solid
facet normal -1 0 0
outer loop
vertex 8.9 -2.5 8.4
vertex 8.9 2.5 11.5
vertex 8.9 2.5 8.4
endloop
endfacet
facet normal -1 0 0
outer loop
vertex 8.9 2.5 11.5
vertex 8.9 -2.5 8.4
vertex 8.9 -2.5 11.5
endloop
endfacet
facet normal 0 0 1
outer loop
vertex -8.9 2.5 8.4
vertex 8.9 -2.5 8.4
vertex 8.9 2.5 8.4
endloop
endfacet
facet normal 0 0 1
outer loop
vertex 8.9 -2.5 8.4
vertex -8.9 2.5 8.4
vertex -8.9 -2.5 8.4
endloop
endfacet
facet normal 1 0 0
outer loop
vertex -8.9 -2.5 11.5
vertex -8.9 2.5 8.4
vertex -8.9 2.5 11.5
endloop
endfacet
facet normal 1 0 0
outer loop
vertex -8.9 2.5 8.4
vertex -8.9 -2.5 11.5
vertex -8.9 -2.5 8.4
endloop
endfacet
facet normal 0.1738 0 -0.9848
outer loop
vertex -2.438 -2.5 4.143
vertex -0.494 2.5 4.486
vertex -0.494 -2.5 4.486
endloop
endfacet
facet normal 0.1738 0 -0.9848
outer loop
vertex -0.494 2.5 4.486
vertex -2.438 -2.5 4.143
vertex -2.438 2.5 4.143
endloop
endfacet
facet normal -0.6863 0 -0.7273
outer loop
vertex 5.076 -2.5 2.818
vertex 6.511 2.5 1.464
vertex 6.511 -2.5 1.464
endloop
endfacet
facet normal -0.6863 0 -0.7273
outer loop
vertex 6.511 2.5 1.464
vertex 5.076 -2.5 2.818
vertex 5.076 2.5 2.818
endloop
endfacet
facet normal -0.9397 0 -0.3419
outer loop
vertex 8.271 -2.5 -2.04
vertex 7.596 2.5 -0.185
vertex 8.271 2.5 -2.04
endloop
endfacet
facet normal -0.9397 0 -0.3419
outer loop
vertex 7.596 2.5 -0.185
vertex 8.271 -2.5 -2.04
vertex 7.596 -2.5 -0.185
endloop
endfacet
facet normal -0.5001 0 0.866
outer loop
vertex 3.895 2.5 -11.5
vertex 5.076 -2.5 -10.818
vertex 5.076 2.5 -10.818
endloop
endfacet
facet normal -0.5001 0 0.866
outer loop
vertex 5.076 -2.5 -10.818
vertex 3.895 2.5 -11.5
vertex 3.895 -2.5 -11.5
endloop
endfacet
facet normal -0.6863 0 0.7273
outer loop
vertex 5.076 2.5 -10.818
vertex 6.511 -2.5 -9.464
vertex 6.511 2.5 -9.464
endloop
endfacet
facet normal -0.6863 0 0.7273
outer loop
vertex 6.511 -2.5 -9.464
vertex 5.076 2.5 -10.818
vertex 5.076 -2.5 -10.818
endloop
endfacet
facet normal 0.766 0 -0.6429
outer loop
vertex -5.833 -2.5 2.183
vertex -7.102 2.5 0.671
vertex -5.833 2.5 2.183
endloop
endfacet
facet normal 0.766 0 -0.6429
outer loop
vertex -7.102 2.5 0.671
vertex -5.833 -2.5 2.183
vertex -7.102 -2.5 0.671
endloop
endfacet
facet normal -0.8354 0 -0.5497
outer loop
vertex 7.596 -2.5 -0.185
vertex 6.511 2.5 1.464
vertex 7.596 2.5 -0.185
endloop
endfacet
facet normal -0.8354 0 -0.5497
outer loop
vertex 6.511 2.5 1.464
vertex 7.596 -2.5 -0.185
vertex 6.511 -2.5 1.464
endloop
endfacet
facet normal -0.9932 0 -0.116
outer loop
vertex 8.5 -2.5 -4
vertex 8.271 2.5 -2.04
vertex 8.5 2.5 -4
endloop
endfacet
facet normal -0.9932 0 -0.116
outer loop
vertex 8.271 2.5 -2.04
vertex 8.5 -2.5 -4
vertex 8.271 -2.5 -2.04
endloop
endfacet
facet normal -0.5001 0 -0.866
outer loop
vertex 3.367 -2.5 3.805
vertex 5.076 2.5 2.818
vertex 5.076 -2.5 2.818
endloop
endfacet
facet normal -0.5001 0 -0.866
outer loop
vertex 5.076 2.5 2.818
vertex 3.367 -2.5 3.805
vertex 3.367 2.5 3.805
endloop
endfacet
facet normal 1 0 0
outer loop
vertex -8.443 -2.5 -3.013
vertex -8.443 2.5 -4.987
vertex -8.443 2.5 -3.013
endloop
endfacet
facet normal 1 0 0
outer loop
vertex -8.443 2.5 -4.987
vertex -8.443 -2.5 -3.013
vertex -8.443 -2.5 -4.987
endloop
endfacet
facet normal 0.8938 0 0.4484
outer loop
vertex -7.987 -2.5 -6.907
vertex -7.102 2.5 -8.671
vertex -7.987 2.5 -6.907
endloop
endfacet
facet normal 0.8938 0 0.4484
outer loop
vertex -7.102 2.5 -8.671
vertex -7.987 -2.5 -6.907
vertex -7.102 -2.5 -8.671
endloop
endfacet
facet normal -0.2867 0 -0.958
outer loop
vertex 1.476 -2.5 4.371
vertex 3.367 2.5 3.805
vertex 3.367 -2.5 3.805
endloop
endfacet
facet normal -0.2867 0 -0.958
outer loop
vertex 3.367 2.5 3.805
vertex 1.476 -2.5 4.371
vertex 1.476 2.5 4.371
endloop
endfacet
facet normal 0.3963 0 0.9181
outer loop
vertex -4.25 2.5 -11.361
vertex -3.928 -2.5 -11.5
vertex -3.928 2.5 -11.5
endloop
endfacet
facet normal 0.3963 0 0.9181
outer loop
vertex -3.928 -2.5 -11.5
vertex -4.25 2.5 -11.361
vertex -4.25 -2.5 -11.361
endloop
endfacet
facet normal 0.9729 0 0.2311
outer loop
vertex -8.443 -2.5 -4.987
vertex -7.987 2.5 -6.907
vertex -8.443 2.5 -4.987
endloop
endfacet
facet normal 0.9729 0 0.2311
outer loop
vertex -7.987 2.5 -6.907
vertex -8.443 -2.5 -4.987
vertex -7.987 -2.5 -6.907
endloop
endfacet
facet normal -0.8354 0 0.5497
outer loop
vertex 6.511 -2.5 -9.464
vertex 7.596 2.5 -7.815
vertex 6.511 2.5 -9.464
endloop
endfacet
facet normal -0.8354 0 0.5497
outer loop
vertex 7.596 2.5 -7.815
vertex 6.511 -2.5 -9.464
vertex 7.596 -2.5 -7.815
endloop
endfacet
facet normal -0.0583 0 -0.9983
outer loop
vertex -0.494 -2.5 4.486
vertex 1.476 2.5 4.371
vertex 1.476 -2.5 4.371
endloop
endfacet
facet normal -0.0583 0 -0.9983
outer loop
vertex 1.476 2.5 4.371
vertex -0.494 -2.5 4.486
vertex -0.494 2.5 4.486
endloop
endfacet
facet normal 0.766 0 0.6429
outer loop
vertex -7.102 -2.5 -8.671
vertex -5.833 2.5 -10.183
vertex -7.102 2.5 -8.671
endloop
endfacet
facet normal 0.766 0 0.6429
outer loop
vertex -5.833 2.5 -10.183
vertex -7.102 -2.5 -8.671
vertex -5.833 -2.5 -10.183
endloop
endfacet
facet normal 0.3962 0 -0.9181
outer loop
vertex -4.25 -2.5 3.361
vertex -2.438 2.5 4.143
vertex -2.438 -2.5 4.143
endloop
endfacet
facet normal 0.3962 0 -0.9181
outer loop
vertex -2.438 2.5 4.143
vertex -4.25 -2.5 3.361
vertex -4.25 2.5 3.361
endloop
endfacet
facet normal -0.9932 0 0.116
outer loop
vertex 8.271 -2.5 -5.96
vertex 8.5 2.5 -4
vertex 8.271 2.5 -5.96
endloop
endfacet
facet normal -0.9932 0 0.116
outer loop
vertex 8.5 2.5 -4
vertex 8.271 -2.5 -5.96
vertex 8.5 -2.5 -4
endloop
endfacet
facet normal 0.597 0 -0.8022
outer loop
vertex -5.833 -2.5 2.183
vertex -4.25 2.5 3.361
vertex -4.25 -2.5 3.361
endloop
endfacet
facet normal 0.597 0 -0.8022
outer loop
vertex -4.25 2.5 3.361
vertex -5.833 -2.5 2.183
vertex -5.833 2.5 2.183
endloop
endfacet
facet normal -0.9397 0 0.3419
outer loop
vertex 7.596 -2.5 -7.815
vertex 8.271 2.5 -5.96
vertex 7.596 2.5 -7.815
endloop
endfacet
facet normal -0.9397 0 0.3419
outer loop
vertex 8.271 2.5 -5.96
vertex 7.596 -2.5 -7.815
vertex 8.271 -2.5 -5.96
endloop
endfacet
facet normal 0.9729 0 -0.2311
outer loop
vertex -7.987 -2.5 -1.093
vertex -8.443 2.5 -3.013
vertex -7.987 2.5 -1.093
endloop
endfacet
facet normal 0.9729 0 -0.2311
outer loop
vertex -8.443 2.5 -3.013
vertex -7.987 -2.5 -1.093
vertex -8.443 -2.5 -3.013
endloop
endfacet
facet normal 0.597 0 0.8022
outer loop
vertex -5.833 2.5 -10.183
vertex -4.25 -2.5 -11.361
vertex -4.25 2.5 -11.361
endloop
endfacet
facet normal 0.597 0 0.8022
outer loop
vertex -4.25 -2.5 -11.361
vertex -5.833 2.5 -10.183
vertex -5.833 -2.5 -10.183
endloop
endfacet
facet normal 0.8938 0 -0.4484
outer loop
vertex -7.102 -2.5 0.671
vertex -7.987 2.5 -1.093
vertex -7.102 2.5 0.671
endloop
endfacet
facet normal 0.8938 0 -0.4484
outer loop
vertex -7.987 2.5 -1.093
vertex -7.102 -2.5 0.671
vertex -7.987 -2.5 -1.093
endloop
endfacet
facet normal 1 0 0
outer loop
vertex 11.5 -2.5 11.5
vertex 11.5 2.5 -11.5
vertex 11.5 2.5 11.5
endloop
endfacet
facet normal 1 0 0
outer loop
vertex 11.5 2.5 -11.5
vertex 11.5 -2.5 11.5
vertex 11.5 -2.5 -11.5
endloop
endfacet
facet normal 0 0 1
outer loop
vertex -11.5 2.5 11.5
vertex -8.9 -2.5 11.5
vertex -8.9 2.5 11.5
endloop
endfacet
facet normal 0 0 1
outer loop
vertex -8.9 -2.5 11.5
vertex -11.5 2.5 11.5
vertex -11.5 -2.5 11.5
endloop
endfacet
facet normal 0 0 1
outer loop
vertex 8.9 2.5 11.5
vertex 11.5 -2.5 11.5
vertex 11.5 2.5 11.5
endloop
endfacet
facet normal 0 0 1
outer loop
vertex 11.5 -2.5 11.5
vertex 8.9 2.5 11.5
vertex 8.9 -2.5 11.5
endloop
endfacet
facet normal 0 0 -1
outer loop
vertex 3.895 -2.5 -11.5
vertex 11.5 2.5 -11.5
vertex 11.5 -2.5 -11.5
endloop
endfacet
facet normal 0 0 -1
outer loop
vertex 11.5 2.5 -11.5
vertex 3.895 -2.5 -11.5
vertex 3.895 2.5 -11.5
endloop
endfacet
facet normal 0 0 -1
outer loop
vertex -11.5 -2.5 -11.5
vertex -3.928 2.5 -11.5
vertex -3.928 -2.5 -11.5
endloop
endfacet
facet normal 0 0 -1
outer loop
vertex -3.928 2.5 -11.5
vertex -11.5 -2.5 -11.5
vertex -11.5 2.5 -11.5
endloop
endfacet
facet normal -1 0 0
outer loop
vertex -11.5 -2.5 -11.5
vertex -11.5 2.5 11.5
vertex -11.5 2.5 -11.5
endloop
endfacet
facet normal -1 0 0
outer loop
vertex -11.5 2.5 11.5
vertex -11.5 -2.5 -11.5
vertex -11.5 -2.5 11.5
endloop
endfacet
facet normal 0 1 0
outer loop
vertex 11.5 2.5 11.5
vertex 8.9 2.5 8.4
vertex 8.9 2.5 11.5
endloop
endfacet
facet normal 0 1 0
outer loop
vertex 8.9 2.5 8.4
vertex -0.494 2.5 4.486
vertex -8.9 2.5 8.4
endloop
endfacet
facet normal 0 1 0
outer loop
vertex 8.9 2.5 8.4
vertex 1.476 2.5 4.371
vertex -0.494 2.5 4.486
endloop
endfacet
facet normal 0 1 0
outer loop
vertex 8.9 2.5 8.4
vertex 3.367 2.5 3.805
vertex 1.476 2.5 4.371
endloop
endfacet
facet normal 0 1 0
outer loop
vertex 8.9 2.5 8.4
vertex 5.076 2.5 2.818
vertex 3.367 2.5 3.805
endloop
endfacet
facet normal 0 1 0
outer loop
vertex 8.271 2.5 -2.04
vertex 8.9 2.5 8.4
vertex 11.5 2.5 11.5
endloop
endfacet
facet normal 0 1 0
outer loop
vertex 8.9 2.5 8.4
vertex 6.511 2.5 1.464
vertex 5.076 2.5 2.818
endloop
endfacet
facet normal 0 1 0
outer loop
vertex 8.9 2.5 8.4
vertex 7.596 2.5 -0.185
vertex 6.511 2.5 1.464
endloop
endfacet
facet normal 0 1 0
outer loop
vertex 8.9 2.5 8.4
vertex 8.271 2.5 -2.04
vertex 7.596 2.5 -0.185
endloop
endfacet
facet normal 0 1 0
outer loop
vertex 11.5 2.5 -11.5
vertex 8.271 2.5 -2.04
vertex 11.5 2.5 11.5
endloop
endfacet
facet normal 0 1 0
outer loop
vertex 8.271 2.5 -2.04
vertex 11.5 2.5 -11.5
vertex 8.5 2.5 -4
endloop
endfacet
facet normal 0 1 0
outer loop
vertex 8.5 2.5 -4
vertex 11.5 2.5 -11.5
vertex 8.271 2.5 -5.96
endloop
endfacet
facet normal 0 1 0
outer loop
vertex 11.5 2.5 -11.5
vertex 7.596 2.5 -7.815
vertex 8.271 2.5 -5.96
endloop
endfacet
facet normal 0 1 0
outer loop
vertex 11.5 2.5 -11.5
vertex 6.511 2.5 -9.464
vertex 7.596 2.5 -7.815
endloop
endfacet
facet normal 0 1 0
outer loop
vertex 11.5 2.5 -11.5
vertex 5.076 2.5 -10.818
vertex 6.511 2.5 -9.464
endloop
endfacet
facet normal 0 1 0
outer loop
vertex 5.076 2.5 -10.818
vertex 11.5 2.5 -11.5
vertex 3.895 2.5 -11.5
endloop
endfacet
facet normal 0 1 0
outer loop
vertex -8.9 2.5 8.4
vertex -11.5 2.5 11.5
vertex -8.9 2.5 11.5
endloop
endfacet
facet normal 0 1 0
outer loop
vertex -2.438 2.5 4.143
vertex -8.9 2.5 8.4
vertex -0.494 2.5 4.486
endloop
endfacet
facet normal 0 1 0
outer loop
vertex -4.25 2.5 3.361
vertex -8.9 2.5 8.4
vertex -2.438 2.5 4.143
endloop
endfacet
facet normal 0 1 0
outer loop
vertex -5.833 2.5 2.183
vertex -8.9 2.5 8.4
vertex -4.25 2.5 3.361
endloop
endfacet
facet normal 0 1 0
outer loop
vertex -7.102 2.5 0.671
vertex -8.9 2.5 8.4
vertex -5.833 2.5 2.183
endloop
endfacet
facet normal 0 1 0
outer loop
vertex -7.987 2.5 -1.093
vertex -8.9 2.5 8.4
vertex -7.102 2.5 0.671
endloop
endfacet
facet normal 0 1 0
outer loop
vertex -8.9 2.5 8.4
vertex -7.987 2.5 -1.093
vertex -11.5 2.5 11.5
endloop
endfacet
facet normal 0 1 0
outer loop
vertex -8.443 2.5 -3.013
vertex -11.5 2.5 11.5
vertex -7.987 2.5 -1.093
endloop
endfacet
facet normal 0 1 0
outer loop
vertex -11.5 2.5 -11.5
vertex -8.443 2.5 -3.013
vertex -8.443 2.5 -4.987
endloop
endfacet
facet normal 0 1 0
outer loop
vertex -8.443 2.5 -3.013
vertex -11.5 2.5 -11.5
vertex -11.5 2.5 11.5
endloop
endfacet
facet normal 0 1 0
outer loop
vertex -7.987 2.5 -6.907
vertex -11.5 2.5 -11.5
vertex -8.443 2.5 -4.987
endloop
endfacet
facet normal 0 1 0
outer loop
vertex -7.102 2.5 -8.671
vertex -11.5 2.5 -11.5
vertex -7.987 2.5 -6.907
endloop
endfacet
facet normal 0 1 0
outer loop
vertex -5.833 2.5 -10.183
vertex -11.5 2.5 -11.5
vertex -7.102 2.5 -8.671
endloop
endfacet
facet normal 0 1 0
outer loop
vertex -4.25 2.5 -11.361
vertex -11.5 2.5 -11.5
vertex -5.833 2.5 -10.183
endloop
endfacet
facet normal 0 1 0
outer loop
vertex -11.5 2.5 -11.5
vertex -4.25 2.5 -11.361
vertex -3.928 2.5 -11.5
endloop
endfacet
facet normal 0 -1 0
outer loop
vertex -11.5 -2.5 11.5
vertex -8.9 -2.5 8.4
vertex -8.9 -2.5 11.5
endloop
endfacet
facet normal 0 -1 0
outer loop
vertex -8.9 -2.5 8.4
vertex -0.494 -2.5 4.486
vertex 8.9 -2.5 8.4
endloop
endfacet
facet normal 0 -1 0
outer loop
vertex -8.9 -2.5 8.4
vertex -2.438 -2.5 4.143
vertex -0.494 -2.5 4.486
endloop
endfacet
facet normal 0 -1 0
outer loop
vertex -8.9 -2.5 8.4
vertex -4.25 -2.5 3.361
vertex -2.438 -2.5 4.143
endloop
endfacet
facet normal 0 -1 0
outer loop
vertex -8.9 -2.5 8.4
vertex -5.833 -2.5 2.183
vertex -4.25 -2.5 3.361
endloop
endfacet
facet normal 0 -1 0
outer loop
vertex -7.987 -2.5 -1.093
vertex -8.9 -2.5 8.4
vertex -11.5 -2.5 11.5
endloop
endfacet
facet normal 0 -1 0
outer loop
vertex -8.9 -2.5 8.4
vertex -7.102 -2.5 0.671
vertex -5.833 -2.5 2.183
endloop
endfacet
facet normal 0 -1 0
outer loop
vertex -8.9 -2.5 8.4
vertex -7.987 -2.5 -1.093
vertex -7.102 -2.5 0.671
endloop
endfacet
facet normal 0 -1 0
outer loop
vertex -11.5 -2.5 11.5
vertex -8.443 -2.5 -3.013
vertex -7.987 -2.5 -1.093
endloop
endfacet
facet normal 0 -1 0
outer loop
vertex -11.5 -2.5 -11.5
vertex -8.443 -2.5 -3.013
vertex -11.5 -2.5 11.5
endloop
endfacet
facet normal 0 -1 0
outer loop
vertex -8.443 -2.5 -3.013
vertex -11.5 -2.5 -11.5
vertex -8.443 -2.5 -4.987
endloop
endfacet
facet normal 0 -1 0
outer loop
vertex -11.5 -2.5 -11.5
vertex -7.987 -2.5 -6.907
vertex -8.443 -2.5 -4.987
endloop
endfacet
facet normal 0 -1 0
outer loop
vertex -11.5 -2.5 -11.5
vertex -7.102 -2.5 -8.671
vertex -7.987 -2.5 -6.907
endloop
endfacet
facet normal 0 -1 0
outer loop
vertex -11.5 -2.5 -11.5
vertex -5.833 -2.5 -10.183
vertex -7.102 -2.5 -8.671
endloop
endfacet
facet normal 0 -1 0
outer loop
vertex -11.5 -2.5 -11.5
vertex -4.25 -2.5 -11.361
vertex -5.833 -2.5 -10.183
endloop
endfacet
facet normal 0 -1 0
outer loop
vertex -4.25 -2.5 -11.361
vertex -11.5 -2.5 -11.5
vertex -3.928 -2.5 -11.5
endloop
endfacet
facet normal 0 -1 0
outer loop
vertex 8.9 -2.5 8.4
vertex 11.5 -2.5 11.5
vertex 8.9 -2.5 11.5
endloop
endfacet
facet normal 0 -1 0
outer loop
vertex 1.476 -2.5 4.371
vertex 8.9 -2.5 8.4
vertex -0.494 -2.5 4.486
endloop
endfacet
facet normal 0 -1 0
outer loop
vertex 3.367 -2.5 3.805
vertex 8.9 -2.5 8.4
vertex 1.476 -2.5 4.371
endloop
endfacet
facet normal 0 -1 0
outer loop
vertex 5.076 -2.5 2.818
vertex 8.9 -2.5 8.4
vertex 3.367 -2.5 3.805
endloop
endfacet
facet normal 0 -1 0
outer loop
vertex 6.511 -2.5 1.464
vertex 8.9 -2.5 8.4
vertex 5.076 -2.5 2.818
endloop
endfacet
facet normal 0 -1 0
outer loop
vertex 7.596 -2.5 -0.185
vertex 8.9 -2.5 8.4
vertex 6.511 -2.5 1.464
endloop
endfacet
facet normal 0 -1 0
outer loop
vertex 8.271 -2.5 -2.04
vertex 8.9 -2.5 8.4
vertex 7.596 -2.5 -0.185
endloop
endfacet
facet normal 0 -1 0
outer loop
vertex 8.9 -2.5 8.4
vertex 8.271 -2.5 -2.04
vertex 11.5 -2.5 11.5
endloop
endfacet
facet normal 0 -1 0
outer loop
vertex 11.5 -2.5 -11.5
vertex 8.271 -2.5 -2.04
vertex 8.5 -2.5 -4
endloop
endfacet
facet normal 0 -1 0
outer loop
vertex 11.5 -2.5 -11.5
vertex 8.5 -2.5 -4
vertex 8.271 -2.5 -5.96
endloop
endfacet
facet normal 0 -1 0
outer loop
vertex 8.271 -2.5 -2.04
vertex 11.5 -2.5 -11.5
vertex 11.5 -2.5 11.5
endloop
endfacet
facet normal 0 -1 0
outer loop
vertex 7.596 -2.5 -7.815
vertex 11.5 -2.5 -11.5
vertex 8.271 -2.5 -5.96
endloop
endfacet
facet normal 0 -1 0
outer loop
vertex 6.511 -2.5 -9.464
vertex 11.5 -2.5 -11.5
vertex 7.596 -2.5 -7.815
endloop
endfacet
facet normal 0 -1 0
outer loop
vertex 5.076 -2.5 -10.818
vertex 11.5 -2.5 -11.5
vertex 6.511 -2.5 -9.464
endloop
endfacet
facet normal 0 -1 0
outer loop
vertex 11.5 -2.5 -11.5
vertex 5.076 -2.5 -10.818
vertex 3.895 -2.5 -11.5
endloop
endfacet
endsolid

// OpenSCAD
// Coding 80min.

nozzle=0.4;
layerHeight=0.2;

outsideWidth=23;
outsideHeigth=23;
outsideLength=5;  // Testing ready
//outsideLength=60; // Production ready
barDiameter=15;
emptyDiffDiameter=1;
emptyDiff=0.1;
extra=10;
hornWidth=2.5;
hornHeight=3;
    
difference(){
    translate([0,0,0]){
        cube([outsideWidth,outsideLength,outsideHeigth],true);
    }
    union(){
        translate([0,0,(outsideHeigth/2)-(hornHeight/2)-(emptyDiff/2)+(extra/2)]){
            cube([outsideWidth-(2*hornWidth)-(2*emptyDiff),outsideLength+extra,hornHeight+emptyDiff+extra],true);
        }
        translate([0,(outsideLength+extra)/2,-(outsideHeigth/2)+barDiameter/2]){
            rotate([90,0,0]){
                diameter=barDiameter/2+emptyDiffDiameter;
                cylinder(outsideLength+extra,diameter,diameter);
            }
        }
    }
}
